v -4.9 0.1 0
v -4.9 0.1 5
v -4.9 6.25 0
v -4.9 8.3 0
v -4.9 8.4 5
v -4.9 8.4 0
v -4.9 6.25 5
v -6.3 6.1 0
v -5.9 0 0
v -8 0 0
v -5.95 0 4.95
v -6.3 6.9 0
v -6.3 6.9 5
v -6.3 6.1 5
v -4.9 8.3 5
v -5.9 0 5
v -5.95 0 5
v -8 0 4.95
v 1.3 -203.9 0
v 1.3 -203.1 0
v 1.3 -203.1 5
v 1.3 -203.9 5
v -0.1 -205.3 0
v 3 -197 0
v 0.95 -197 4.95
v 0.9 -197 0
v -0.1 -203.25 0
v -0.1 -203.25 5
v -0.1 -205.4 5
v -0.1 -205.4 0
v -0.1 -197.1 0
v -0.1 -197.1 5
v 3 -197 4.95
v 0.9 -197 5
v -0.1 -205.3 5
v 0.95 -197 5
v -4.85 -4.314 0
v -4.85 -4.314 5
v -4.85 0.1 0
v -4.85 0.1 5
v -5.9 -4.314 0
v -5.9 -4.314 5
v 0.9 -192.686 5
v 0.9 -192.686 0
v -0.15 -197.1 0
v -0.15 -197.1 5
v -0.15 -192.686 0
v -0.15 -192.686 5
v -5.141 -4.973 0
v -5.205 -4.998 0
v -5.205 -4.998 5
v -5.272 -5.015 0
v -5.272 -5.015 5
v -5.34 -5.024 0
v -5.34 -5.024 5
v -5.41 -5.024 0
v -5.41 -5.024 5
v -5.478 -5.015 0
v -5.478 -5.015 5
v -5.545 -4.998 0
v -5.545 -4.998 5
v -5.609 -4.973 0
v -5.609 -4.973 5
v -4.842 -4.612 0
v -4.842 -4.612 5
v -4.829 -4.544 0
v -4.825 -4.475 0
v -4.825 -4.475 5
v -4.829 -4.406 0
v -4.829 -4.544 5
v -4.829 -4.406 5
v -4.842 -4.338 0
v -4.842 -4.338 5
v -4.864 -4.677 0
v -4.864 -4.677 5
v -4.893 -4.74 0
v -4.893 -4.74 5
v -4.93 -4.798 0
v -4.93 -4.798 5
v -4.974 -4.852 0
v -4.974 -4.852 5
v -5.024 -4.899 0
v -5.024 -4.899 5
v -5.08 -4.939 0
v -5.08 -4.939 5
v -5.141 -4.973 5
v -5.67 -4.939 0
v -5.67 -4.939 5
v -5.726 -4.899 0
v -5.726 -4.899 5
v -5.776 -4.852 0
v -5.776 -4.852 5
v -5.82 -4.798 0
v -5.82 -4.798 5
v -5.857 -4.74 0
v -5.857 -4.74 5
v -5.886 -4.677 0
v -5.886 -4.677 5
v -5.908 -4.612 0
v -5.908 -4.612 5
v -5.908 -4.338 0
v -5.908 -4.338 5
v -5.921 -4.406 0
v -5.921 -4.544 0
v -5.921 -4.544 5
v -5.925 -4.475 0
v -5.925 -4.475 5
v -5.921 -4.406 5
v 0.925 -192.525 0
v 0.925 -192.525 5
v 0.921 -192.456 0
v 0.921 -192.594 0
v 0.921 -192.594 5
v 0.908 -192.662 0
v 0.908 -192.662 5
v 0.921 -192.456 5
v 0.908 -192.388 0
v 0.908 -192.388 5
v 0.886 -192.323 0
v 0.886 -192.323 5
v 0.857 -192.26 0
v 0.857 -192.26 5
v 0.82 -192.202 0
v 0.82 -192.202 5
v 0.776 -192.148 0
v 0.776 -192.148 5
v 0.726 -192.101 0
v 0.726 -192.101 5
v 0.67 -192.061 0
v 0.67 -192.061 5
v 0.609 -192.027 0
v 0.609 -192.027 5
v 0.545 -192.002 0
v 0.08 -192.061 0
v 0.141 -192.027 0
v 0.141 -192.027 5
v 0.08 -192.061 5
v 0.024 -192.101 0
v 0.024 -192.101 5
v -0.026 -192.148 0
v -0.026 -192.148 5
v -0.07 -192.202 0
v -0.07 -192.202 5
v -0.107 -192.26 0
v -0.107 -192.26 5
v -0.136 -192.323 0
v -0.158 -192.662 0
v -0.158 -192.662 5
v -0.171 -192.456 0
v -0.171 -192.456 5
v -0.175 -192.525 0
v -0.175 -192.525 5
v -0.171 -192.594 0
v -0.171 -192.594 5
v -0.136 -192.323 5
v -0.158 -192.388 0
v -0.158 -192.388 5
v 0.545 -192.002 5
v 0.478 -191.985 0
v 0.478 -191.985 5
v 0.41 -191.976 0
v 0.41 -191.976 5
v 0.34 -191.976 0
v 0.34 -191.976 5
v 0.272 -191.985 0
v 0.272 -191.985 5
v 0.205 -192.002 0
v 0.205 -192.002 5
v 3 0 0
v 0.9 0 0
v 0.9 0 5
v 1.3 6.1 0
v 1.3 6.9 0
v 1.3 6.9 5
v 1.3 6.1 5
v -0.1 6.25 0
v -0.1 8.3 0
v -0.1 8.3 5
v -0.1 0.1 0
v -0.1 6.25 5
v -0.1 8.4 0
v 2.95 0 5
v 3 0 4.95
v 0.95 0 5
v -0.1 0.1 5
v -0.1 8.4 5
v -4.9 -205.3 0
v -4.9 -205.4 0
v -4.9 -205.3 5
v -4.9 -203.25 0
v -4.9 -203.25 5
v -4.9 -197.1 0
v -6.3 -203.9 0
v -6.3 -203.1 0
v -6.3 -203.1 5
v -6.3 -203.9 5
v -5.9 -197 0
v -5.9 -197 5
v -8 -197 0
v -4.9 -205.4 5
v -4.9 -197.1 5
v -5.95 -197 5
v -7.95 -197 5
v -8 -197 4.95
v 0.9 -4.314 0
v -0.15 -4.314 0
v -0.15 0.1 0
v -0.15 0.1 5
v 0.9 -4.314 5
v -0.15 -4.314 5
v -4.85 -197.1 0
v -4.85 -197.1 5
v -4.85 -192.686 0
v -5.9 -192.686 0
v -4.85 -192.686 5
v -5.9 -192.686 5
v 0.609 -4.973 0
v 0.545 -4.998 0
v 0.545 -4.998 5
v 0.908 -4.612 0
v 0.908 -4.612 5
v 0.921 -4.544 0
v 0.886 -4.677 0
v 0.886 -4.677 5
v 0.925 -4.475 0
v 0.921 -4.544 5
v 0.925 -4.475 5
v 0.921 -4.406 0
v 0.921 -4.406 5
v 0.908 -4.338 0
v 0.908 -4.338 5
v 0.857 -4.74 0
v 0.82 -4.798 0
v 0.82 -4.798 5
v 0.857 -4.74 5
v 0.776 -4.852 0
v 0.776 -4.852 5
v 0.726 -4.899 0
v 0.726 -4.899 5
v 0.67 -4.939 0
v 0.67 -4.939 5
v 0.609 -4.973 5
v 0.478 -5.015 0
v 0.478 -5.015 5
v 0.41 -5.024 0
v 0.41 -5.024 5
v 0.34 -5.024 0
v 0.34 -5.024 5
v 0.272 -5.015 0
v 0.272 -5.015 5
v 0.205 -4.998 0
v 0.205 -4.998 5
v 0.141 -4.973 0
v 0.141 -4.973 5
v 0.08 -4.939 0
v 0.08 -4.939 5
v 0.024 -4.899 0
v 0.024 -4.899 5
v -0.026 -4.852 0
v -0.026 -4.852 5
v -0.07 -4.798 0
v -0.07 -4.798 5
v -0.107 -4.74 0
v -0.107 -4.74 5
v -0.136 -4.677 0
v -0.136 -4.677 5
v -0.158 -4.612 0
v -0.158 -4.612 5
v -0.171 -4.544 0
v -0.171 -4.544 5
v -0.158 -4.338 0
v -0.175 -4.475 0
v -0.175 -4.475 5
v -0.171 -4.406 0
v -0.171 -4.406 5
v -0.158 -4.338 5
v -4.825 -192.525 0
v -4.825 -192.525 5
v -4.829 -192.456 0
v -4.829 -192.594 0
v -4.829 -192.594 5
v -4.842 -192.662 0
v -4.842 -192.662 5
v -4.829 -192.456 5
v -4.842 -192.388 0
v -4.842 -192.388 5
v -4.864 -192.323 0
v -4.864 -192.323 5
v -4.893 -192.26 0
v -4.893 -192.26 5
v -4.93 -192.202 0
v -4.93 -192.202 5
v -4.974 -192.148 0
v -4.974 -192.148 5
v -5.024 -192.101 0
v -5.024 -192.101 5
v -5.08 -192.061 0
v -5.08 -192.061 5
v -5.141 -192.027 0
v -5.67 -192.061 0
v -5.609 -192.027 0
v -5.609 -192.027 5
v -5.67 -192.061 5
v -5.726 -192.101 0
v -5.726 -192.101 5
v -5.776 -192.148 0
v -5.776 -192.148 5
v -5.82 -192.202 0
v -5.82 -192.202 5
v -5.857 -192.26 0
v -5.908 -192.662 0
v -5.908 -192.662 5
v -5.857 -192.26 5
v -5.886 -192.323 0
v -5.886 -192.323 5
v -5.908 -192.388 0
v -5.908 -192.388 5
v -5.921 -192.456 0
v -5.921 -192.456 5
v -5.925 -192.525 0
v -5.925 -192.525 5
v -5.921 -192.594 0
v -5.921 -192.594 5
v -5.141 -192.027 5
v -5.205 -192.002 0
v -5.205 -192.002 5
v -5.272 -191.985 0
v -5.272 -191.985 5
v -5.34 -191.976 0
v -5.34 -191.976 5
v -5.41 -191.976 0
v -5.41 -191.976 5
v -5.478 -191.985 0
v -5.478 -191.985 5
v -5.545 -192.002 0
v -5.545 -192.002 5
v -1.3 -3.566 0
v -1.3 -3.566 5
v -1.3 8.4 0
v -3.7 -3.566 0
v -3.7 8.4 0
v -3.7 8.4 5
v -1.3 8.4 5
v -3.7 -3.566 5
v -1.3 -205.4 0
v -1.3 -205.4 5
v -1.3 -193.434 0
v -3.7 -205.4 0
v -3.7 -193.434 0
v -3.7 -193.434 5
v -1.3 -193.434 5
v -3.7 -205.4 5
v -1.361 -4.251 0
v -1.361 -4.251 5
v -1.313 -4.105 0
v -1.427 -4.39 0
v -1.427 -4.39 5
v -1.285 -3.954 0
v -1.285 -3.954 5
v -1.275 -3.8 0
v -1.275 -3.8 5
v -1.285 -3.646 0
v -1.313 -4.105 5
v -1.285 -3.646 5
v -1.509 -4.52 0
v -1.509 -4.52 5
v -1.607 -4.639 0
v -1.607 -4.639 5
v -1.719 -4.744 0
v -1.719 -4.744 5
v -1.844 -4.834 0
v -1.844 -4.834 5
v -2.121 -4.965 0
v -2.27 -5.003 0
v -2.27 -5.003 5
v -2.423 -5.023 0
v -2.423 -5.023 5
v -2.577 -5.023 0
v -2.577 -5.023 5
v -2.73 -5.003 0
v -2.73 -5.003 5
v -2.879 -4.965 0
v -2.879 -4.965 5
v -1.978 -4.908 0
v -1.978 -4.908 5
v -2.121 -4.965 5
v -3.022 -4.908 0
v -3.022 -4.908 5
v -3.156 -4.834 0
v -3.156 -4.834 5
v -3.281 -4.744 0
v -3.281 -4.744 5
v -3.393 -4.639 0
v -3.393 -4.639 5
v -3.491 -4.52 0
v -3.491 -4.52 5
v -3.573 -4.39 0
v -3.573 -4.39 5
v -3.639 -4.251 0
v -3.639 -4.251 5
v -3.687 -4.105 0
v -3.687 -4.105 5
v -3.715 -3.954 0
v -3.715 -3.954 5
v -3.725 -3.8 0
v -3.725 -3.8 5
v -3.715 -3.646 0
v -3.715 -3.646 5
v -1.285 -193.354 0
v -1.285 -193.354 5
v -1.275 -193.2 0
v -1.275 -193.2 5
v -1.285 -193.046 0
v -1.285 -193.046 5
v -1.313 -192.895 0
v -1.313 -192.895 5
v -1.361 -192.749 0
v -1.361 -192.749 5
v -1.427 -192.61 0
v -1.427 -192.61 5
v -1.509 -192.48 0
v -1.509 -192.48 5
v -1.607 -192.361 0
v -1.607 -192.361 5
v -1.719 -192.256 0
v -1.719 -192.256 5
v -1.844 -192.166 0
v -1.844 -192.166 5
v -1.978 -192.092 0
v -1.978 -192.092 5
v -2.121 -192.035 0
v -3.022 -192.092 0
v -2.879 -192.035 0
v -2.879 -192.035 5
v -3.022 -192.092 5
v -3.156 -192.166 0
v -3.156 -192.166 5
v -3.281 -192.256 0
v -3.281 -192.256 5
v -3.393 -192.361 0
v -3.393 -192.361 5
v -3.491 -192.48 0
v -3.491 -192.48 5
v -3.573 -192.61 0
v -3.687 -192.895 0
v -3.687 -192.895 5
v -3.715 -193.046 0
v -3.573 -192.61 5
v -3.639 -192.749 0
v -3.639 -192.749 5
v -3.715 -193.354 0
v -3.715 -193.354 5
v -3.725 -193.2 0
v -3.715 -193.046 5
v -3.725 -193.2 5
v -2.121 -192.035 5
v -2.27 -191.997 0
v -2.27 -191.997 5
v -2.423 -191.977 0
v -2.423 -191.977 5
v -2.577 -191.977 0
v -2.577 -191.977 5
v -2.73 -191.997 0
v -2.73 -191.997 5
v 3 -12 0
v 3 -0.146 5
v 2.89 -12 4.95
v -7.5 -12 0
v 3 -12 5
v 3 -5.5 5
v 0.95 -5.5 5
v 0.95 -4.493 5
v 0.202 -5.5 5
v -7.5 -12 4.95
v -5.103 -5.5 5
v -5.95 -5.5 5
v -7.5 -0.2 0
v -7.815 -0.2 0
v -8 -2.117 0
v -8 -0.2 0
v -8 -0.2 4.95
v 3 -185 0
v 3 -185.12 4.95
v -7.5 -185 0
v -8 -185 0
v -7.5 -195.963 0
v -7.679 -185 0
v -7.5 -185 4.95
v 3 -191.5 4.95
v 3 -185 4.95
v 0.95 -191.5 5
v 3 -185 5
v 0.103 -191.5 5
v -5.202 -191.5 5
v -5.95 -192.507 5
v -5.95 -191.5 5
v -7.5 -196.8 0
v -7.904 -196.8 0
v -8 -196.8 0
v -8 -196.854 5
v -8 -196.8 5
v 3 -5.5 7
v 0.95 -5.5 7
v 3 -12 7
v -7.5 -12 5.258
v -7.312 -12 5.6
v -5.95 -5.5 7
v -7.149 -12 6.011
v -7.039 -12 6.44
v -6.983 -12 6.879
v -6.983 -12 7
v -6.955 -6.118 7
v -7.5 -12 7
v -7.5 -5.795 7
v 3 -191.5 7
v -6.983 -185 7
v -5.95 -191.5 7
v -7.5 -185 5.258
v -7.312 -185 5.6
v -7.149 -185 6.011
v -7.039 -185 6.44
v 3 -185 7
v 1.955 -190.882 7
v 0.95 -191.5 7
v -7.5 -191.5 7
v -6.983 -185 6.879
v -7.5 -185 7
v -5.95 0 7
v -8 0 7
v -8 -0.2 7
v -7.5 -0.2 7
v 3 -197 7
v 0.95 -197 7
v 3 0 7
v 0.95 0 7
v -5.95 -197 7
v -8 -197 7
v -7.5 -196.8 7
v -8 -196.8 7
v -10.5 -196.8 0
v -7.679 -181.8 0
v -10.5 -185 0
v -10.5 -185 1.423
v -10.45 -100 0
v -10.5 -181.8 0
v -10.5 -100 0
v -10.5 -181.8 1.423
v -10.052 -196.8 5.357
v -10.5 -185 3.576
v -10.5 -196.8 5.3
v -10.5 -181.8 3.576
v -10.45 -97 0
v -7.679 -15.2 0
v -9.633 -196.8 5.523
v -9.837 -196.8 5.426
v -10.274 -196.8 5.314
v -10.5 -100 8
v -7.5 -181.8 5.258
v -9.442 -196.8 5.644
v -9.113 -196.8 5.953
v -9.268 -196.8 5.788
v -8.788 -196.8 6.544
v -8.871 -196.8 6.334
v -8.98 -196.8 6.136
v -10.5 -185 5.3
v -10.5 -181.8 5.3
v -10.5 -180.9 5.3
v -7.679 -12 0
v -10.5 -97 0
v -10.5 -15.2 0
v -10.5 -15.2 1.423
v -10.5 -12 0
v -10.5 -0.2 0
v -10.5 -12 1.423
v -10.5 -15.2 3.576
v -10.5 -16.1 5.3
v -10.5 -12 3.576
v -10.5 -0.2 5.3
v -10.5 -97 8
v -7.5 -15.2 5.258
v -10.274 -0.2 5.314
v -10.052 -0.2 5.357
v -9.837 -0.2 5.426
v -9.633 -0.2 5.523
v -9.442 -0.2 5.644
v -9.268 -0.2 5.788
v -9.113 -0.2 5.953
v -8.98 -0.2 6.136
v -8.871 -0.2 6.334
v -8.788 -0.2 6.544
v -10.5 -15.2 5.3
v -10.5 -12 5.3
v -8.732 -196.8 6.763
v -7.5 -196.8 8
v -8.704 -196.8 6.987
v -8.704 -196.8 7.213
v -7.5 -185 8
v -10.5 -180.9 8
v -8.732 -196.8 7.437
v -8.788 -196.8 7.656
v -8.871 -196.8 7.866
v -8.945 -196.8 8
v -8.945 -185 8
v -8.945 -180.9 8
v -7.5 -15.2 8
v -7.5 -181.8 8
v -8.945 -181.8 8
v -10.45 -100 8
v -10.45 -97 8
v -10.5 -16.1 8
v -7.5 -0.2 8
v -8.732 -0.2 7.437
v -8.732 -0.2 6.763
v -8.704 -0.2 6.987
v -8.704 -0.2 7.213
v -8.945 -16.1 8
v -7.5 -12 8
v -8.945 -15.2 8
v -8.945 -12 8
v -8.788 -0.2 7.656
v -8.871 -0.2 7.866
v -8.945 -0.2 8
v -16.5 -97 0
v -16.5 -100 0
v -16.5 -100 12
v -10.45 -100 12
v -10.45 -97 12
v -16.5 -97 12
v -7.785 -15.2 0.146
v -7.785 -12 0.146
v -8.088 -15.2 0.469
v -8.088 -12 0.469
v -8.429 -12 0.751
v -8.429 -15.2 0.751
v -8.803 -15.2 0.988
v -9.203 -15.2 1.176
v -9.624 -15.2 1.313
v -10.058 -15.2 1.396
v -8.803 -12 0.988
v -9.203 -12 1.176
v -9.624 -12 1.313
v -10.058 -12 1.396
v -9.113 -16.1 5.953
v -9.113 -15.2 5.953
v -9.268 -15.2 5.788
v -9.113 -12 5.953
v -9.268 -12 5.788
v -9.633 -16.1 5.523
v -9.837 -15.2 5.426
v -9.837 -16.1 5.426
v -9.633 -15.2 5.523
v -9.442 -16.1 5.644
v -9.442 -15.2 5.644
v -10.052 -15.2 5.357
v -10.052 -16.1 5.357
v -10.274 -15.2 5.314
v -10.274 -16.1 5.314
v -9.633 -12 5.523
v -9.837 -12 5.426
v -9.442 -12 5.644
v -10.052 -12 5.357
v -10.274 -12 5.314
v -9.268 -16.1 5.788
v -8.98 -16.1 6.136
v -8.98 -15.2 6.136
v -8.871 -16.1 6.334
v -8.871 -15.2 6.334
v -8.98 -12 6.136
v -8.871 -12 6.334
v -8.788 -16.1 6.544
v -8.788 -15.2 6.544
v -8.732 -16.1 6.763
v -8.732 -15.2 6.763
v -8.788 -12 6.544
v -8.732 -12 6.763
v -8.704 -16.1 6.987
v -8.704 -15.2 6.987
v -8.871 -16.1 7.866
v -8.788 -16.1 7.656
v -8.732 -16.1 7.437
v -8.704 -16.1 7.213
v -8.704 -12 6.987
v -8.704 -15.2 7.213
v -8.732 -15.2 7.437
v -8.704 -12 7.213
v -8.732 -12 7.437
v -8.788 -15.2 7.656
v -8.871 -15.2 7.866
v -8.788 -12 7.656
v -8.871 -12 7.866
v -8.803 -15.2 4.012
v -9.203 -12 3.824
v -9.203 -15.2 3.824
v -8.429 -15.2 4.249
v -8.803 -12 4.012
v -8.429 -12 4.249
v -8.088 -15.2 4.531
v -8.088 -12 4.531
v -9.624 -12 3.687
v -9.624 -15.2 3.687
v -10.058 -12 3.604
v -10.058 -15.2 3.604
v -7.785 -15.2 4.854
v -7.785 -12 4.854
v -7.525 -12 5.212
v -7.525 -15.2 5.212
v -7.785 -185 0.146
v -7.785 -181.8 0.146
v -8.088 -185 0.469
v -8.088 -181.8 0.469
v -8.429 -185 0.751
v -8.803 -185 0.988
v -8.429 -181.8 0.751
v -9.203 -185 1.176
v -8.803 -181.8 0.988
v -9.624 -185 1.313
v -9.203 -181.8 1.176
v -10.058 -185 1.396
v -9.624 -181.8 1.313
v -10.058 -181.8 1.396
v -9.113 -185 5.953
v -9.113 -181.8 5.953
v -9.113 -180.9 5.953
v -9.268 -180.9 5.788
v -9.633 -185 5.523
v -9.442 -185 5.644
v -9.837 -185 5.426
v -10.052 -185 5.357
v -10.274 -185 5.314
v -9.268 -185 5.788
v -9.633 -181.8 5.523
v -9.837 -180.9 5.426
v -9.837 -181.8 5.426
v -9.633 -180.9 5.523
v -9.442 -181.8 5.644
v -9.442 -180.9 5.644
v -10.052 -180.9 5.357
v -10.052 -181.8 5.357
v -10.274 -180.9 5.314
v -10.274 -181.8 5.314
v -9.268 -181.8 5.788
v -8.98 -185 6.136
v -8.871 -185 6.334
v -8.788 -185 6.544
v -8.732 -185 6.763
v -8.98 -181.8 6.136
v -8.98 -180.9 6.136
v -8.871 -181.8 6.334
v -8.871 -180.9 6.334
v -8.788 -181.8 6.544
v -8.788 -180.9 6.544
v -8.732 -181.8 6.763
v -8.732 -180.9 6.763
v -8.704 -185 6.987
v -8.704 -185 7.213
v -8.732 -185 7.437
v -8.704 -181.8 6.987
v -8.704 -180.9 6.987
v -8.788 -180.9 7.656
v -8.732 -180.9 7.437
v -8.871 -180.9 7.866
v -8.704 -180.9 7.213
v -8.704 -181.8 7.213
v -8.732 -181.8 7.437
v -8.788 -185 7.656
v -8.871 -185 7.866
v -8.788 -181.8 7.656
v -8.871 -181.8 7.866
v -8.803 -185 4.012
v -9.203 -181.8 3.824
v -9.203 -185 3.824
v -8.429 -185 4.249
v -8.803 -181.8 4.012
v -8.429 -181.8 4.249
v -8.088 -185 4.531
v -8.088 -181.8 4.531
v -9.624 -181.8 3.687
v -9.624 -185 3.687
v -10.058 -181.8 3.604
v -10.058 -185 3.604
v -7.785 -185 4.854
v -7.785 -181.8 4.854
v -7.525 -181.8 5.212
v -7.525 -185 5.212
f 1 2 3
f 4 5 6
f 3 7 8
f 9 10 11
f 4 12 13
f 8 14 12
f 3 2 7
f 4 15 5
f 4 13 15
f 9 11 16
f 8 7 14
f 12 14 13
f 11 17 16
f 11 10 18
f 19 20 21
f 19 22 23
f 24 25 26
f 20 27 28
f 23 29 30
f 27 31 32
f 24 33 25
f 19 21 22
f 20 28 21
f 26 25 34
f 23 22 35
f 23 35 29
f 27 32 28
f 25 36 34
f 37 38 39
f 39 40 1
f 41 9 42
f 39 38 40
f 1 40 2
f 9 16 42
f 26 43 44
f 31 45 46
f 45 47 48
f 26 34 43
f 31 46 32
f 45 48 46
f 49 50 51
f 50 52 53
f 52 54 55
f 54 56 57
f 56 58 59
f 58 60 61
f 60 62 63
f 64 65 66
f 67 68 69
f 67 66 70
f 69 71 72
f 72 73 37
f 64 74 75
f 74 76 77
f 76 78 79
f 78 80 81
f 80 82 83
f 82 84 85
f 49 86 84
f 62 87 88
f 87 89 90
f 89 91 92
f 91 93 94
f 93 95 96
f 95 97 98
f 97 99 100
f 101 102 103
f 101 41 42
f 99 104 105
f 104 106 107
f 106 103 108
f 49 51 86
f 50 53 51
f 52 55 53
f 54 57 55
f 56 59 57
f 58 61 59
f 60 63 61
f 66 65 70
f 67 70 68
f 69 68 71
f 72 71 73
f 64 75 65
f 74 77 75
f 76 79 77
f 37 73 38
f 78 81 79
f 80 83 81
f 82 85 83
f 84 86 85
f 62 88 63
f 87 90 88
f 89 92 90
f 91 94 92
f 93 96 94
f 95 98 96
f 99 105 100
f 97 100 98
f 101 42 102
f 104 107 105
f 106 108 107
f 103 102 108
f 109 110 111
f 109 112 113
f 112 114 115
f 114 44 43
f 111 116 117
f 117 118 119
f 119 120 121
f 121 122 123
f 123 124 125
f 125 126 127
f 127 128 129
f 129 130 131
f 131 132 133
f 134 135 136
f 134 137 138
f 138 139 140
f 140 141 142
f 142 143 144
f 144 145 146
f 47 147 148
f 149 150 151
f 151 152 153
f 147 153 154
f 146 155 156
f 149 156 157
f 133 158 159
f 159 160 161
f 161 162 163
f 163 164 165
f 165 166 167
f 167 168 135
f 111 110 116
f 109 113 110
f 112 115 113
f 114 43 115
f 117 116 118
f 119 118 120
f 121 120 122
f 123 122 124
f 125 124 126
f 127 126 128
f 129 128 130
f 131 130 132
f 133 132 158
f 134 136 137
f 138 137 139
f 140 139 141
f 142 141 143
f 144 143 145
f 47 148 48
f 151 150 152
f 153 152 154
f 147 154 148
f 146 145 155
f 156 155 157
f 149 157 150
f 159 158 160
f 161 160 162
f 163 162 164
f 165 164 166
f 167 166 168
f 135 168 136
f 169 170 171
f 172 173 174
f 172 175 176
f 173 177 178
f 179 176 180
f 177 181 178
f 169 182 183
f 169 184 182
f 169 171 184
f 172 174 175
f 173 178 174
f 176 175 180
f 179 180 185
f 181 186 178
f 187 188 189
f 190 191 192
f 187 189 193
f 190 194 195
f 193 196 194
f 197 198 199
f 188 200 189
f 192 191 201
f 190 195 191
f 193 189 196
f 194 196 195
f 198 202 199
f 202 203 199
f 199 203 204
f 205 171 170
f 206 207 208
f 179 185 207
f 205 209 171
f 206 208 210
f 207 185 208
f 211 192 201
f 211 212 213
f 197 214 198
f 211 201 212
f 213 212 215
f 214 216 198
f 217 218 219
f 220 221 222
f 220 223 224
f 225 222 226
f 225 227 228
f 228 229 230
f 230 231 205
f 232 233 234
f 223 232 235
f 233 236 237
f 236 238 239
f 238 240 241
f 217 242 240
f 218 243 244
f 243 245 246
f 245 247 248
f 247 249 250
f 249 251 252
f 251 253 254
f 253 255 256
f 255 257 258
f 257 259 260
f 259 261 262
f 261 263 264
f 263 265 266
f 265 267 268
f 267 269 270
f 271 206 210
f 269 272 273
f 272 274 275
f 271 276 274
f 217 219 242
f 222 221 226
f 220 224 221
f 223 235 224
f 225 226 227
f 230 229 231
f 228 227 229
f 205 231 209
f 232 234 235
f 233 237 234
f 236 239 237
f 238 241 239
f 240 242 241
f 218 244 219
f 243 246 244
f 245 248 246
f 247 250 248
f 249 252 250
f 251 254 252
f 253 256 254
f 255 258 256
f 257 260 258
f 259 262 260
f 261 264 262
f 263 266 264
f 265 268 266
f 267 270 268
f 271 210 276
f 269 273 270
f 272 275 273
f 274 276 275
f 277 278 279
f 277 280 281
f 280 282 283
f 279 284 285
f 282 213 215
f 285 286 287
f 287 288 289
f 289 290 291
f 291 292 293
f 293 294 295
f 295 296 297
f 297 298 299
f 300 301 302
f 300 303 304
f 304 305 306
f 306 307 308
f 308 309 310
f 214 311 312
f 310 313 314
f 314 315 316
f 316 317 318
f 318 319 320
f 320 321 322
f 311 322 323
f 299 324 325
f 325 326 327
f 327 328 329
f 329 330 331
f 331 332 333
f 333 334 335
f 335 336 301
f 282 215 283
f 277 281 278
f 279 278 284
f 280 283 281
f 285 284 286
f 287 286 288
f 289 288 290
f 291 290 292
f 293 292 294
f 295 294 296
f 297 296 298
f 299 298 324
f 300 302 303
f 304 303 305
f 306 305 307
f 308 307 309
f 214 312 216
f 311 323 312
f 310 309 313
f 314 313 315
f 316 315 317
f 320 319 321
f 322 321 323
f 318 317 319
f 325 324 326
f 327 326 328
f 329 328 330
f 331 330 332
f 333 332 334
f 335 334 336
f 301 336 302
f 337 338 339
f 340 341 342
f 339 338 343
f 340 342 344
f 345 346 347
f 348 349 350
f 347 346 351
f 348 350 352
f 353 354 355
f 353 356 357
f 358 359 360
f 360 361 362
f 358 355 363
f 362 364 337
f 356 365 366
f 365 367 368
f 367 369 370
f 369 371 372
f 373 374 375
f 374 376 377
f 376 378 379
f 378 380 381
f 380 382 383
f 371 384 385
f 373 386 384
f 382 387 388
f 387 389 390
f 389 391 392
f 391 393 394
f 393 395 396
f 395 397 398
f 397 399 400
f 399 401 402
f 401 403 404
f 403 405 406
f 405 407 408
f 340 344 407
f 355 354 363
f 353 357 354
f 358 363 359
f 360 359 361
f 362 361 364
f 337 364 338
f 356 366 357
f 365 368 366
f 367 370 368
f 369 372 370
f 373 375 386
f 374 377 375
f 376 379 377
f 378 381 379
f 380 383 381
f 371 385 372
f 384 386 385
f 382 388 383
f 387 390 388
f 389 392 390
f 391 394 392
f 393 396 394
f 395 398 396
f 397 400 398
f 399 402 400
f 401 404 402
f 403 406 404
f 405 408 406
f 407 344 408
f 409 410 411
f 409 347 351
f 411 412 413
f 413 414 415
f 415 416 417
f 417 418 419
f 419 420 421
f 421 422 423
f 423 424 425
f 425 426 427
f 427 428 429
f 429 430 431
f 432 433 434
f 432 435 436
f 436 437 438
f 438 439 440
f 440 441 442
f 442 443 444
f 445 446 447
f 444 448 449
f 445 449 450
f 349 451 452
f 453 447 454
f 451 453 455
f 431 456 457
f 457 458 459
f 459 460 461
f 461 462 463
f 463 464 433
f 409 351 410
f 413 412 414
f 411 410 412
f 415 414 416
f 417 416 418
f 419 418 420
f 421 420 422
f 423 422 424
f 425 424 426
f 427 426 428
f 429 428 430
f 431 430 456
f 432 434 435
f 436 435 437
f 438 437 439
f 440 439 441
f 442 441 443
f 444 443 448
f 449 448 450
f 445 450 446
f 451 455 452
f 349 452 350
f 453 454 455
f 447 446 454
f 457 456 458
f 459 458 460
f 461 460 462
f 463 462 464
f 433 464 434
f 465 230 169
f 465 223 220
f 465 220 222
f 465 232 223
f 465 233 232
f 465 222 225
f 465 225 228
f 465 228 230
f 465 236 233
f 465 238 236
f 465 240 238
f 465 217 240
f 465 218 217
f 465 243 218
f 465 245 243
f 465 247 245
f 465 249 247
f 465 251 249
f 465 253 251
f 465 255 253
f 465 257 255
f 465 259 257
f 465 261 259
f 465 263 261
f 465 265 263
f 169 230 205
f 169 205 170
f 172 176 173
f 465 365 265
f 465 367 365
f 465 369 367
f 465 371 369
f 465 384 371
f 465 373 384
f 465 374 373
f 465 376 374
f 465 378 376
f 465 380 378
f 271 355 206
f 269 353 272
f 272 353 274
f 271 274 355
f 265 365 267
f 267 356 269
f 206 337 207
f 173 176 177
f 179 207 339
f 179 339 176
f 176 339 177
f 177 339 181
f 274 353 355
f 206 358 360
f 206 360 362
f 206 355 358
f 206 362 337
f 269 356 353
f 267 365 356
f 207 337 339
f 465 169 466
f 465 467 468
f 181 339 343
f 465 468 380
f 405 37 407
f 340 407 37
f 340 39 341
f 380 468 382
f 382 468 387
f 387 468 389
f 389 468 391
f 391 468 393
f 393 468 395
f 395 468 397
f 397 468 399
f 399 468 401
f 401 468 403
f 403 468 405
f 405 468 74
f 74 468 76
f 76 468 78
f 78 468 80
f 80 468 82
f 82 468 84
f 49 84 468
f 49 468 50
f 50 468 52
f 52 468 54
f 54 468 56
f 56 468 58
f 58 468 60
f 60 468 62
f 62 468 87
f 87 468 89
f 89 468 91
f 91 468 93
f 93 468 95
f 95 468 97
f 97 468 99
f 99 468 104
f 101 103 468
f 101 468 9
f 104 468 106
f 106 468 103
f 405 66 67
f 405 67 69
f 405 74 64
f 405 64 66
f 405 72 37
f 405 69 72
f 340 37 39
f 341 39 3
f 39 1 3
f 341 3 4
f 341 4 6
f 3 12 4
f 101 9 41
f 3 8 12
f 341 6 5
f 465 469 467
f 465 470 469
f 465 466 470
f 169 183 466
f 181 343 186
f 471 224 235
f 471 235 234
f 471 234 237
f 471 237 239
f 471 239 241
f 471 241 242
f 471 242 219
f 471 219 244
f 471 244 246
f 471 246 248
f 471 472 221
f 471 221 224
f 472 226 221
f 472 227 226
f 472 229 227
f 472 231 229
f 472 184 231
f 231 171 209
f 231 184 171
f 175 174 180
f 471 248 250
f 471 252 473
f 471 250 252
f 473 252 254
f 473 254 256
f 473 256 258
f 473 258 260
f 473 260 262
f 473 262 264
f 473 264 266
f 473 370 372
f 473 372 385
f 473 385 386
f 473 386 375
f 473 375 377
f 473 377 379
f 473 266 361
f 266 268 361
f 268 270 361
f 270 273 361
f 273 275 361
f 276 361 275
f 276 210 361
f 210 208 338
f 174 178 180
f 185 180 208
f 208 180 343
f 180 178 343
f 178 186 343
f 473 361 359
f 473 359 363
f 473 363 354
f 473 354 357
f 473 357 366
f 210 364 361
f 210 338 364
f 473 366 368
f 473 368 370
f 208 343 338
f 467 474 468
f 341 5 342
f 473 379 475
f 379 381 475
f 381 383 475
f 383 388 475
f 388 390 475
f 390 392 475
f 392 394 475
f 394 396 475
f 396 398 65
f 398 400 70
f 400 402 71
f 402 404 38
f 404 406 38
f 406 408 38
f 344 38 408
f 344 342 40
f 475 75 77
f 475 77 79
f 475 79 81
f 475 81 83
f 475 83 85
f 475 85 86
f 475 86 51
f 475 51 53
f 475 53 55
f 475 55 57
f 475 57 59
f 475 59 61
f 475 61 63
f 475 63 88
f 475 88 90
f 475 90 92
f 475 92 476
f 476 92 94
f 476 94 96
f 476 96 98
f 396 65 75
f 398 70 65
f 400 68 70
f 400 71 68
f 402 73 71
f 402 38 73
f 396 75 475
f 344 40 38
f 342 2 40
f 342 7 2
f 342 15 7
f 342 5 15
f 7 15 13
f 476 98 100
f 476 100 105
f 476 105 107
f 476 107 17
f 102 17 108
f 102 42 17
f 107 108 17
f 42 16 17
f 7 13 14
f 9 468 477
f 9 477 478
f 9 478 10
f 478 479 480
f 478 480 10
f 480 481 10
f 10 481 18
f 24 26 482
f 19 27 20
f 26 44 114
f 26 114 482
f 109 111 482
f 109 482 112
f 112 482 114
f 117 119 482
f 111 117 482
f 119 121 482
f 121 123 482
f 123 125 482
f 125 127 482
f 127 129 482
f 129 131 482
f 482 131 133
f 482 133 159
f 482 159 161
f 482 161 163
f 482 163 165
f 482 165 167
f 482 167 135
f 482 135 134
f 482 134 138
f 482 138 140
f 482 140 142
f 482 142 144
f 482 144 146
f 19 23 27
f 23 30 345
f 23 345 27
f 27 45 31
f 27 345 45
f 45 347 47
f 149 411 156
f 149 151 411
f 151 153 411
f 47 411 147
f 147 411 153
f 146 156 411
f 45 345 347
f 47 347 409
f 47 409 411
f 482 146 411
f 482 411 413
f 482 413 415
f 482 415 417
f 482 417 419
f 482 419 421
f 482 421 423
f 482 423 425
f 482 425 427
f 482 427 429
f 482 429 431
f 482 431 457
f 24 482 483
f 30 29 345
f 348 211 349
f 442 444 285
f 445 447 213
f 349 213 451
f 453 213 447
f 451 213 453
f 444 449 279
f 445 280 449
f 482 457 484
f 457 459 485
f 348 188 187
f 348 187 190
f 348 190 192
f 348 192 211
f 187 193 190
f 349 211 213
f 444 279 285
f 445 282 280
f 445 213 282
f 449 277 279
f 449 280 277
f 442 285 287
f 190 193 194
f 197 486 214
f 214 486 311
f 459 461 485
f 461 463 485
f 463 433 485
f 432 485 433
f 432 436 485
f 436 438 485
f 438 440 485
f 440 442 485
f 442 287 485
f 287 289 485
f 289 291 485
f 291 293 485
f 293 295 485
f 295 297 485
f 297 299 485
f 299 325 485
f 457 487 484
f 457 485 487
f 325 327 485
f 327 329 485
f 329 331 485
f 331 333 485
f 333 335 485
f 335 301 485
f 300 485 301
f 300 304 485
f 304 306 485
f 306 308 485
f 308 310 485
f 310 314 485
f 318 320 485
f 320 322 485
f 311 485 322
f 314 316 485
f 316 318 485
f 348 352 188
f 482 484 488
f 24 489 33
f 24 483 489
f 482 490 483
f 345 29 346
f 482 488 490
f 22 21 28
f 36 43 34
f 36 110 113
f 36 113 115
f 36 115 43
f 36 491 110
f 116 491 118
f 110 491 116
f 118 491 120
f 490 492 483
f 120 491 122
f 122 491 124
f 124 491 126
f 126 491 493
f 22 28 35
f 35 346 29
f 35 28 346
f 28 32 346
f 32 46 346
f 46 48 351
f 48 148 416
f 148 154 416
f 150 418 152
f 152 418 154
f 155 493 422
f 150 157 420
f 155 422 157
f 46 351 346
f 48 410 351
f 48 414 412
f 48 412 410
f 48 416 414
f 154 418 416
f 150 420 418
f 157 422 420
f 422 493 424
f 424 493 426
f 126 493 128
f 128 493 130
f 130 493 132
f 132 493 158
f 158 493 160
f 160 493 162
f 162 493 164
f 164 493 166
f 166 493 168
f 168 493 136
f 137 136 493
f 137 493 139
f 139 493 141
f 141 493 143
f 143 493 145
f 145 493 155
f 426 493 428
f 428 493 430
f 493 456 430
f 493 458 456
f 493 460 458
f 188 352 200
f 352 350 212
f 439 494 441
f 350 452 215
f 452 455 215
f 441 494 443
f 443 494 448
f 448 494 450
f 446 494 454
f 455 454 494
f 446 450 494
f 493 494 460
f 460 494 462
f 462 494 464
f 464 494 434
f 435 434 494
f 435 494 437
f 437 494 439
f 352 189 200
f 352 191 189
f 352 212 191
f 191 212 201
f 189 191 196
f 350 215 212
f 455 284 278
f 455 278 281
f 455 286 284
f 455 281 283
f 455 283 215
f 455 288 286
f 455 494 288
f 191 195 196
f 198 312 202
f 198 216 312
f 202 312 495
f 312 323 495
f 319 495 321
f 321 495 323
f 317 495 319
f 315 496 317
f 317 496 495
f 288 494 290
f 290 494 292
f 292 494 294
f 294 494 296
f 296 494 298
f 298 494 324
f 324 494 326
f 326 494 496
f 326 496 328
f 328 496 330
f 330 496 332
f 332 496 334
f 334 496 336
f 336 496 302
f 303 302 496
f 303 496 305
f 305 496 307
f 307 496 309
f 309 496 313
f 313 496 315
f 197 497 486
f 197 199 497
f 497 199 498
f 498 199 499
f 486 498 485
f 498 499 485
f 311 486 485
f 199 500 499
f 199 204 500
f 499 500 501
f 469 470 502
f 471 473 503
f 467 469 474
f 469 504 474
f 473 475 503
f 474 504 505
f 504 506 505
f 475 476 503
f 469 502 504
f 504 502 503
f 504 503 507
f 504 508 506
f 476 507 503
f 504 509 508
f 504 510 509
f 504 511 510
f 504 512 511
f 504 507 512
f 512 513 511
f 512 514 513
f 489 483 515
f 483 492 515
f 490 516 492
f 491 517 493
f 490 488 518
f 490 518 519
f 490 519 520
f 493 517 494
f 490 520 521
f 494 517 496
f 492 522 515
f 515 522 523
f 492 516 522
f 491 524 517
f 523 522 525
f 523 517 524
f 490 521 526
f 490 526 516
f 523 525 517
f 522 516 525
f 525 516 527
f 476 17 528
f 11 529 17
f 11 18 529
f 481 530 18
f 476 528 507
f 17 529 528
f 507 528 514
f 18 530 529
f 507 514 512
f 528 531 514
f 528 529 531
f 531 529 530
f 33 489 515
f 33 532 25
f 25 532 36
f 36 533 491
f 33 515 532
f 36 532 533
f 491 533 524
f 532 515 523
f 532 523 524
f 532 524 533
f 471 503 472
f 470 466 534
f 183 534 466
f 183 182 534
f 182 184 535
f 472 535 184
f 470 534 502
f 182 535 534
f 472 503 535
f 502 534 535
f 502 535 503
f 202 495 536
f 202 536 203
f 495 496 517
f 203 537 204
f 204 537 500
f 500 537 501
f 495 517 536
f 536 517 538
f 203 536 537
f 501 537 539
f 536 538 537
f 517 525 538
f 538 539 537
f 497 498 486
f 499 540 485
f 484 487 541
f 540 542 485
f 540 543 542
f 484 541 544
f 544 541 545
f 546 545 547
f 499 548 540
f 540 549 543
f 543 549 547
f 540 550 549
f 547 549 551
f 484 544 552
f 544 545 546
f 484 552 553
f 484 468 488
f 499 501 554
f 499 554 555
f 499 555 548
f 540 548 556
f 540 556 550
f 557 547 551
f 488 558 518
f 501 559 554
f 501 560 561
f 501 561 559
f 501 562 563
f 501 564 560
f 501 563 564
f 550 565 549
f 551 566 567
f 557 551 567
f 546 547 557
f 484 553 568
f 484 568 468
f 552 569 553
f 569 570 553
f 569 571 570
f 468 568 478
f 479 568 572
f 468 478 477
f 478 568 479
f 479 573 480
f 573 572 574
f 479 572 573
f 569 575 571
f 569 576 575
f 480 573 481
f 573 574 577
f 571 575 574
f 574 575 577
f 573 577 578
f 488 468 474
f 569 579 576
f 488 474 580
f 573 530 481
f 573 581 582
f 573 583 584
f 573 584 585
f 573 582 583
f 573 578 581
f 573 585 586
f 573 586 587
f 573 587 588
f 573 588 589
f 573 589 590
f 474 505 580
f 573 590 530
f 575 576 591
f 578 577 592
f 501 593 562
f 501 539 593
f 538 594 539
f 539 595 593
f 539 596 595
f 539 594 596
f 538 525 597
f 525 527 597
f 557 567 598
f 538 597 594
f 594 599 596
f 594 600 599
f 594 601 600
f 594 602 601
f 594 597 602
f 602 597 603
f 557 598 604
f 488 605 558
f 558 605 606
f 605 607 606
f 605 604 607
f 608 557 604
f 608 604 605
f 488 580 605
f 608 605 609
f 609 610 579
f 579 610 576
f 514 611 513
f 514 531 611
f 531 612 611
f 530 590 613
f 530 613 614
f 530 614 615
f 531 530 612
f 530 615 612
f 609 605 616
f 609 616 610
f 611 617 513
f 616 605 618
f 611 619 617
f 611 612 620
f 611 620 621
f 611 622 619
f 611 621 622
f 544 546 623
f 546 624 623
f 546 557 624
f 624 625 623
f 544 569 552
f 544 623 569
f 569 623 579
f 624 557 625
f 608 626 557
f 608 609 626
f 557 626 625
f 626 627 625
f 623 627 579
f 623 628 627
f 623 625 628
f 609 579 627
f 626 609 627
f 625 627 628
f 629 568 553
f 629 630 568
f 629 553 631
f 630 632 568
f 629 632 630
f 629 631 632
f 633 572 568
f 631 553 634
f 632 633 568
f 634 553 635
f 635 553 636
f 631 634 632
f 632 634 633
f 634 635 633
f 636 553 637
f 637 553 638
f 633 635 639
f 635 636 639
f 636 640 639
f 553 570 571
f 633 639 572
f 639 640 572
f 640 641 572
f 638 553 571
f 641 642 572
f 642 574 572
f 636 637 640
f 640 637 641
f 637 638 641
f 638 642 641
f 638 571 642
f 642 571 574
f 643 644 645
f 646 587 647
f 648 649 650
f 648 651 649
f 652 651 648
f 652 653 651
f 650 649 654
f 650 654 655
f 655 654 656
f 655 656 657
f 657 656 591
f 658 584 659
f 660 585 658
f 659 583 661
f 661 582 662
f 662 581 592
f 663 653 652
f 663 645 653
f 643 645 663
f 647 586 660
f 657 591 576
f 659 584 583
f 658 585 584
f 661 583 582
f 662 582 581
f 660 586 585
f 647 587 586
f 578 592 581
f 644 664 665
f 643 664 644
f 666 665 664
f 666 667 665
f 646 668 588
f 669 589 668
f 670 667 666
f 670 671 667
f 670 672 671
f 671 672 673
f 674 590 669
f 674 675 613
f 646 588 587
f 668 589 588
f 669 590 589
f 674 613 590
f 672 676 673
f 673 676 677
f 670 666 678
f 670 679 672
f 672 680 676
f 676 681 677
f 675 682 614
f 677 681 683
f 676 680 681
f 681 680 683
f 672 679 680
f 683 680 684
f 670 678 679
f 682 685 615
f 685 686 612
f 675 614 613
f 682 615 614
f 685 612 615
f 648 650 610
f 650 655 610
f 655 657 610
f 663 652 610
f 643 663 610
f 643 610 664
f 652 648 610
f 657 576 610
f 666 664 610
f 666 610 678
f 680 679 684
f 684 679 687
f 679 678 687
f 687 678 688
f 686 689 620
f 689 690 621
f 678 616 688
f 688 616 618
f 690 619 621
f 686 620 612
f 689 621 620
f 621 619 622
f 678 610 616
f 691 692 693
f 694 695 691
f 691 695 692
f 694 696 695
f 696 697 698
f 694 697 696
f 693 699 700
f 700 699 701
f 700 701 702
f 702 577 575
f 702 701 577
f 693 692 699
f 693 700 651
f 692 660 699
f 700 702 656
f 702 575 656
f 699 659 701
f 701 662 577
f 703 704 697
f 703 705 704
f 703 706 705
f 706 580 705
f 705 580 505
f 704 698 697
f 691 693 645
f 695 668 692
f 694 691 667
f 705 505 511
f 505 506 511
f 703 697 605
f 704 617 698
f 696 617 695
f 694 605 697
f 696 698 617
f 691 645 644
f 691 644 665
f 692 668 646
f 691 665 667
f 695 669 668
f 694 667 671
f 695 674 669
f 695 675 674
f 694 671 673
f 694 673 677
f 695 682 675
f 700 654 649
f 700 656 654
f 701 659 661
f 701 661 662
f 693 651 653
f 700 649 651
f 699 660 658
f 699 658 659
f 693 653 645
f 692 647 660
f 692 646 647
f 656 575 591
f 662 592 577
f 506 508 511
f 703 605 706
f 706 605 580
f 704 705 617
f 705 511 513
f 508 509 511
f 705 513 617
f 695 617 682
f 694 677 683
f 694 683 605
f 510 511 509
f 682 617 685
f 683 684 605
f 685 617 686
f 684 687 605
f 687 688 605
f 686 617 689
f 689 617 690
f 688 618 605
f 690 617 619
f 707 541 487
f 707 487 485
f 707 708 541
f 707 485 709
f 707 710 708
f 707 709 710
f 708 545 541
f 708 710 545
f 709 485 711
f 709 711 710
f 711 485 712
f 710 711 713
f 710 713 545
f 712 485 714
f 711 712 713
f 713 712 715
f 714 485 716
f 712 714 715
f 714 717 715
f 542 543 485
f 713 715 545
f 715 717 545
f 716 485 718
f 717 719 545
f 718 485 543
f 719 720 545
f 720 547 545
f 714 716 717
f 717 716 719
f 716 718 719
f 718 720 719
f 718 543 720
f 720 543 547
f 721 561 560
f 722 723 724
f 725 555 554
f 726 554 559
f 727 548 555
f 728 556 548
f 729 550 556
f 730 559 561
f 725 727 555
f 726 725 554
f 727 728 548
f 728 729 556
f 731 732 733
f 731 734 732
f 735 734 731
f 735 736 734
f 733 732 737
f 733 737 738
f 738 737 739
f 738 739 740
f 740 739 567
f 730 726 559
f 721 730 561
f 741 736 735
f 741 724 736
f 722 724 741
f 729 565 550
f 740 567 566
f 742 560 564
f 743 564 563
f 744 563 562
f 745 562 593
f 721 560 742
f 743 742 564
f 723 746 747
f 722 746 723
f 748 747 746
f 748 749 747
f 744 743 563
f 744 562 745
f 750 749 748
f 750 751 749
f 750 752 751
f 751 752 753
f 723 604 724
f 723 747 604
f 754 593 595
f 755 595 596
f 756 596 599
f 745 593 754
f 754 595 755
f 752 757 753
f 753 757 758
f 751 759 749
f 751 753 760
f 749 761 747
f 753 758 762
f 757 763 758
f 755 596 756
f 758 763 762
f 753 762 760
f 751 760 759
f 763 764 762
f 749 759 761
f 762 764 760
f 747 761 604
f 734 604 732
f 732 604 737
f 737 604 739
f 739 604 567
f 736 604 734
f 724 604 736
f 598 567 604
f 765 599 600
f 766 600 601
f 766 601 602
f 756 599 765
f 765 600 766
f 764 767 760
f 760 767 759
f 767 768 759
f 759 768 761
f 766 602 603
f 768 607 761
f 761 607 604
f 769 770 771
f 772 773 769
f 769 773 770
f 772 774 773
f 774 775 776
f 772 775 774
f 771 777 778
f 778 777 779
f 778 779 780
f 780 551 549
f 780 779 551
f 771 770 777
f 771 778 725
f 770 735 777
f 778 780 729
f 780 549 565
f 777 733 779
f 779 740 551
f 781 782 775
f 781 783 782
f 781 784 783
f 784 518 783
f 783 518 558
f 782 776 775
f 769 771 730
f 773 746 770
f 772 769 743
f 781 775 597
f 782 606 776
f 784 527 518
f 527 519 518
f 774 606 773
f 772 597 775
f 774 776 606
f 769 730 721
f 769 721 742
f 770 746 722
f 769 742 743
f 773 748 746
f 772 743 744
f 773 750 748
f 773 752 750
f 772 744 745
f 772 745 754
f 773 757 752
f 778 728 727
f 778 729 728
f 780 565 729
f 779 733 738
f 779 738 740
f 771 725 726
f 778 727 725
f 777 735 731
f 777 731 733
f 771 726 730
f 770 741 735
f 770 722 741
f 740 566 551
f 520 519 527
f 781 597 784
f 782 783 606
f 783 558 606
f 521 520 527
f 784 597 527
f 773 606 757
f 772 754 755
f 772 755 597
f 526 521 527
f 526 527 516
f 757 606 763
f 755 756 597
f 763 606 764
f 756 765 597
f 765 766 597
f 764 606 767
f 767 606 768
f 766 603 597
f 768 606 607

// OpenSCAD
$fn = 50;

difference() {
	union() {
		translate(v = [0, 0, 0]) {
			rotate(a = [0, 0, 0]) {
				difference() {
					union() {
						translate(v = [0, 0, 2.5]) {
							rotate(a = [0, -90, 0]) {
								difference() {
									union() {
										translate(v = [0, 0, 0]) {
											rotate(a = [0, 0, 0]) {
												difference() {
													union() {
														translate(v = [-2.5, 0, 2.5]) {
															rotate(a = [0, 90.0, 0]) {
																difference() {
																	union() {
																		translate(v = [0, 0, 0]) {
																			rotate(a = [0, 0, 0]) {
																				difference() {
																					union() {
																						translate(v = [0, 0, 0]) {
																							rotate(a = [0, 0, 0]) {
																								difference() {
																									union() {
																										translate(v = [-5.5, -12.0, 0]) {
																											cube(size = [11.0, 20.4, 5.0]);
																										}
																									}
																									union() {
																										translate(v = [0, 0, -0.1]) {
																											linear_extrude(height = 5.2) {
																												polygon(points = [[-2.4, 0], [-2.4, 6.25], [-3.8, 6.1], [-3.8, 6.8999999999999995], [-2.4, 8.299999999999999], [-2.4, 9.399999999999999], [-5.7, 9.399999999999999], [-5.7, 0]]);
																											}
																										}
																										translate(v = [0, 0, -0.1]) {
																											linear_extrude(height = 5.2) {
																												polygon(points = [[-2.35, -4.5], [-2.35, -4.3875], [-2.35, -4.275], [-2.35, -4.1625], [-2.35, -4.05], [-2.35, -3.9375], [-2.35, -3.825], [-2.35, -3.7125], [-2.35, -3.6], [-2.35, -3.4875], [-2.35, -3.375], [-2.35, -3.2625], [-2.35, -3.15], [-2.35, -3.0375], [-2.35, -2.925], [-2.35, -2.8125], [-2.35, -2.7], [-2.35, -2.5875], [-2.35, -2.475], [-2.35, -2.3625], [-2.35, -2.25], [-2.35, -2.1375], [-2.35, -2.025], [-2.35, -1.9125], [-2.35, -1.7999999999999998], [-2.35, -1.6875], [-2.35, -1.5750000000000002], [-2.35, -1.4625], [-2.35, -1.35], [-2.35, -1.2374999999999998], [-2.35, -1.125], [-2.35, -1.0125000000000002], [-2.35, -0.8999999999999999], [-2.35, -0.7875000000000001], [-2.35, -0.6749999999999998], [-2.35, -0.5625], [-2.35, -0.4500000000000002], [-2.35, -0.33750000000000036], [-2.35, -0.22499999999999964], [-2.35, -0.11249999999999982], [-2.35, 0.0], [-2.35, 0.1], [-3.4, 0.1], [-3.4, -4.5]]);
																											}
																										}
																										translate(v = [-2.875, -4.475, -0.1]) {
																											cylinder(h = 5.2, r = 0.55);
																										}
																										translate(v = [0, 0, -0.1]) {
																											linear_extrude(height = 5.2) {
																												polygon(points = [[2.4, 0], [2.4, 6.25], [3.8, 6.1], [3.8, 6.8999999999999995], [2.4, 8.299999999999999], [2.4, 9.399999999999999], [5.7, 9.399999999999999], [5.7, 0]]);
																											}
																										}
																										translate(v = [0, 0, -0.1]) {
																											linear_extrude(height = 5.2) {
																												polygon(points = [[2.35, -4.5], [2.35, -4.3875], [2.35, -4.275], [2.35, -4.1625], [2.35, -4.05], [2.35, -3.9375], [2.35, -3.825], [2.35, -3.7125], [2.35, -3.6], [2.35, -3.4875], [2.35, -3.375], [2.35, -3.2625], [2.35, -3.15], [2.35, -3.0375], [2.35, -2.925], [2.35, -2.8125], [2.35, -2.7], [2.35, -2.5875], [2.35, -2.475], [2.35, -2.3625], [2.35, -2.25], [2.35, -2.1375], [2.35, -2.025], [2.35, -1.9125], [2.35, -1.7999999999999998], [2.35, -1.6875], [2.35, -1.5750000000000002], [2.35, -1.4625], [2.35, -1.35], [2.35, -1.2374999999999998], [2.35, -1.125], [2.35, -1.0125000000000002], [2.35, -0.8999999999999999], [2.35, -0.7875000000000001], [2.35, -0.6749999999999998], [2.35, -0.5625], [2.35, -0.4500000000000002], [2.35, -0.33750000000000036], [2.35, -0.22499999999999964], [2.35, -0.11249999999999982], [2.35, 0.0], [2.35, 0.1], [3.4, 0.1], [3.4, -4.5]]);
																											}
																										}
																										translate(v = [2.875, -4.475, -0.1]) {
																											cylinder(h = 5.2, r = 0.55);
																										}
																										translate(v = [0, 0, -0.1]) {
																											linear_extrude(height = 5.2) {
																												polygon(points = [[-1.2, -3.8499999999999996], [-1.2, -3.6607142857142856], [-1.2, -3.471428571428571], [-1.2, -3.2821428571428566], [-1.2, -3.0928571428571425], [-1.2, -2.9035714285714285], [-1.2, -2.714285714285714], [-1.2, -2.5249999999999995], [-1.2, -2.3357142857142854], [-1.2, -2.1464285714285714], [-1.2, -1.9571428571428569], [-1.2, -1.7678571428571423], [-1.2, -1.5785714285714283], [-1.2, -1.3892857142857138], [-1.2, -1.1999999999999997], [-1.2, -1.0107142857142852], [-1.2, -0.8214285714285712], [-1.2, -0.6321428571428567], [-1.2, -0.4428571428571426], [-1.2, -0.2535714285714281], [-1.2, -0.06428571428571406], [-1.2, 0], [-1.2, 0.12500000000000044], [-1.2, 0.31428571428571495], [-1.2, 0.503571428571429], [-1.2, 0.6928571428571431], [-1.2, 0.8821428571428571], [-1.2, 1.071428571428572], [-1.2, 1.2607142857142861], [-1.2, 1.4500000000000002], [-1.2, 1.6392857142857142], [-1.2, 1.8285714285714292], [-1.2, 2.0178571428571432], [-1.2, 2.2071428571428573], [-1.2, 2.3964285714285714], [-1.2, 2.5857142857142863], [-1.2, 2.7750000000000004], [-1.2, 2.9642857142857144], [-1.2, 3.1535714285714294], [-1.2, 3.3428571428571434], [-1.2, 3.5321428571428575], [-1.2, 3.7214285714285715], [-1.2, 3.9107142857142865], [-1.2, 4.1000000000000005], [-1.2, 4.289285714285715], [-1.2, 4.4785714285714295], [-1.2, 4.667857142857143], [-1.2, 4.857142857142858], [-1.2, 5.046428571428573], [-1.2, 5.235714285714286], [-1.2, 5.425000000000001], [-1.2, 5.614285714285714], [-1.2, 5.803571428571429], [-1.2, 5.992857142857144], [-1.2, 6.1], [-1.2, 6.182142857142857], [-1.2, 6.25], [-1.2, 6.371428571428572], [-1.2, 6.560714285714287], [-1.2, 6.75], [-1.2, 6.939285714285715], [-1.2, 7.128571428571428], [-1.2, 7.317857142857143], [-1.2, 7.507142857142858], [-1.2, 7.696428571428571], [-1.2, 7.885714285714286], [-1.2, 8.075000000000001], [-1.2, 8.264285714285714], [-1.2, 8.45357142857143], [-1.2, 8.642857142857142], [-1.2, 8.832142857142857], [-1.2, 9.021428571428572], [-1.2, 9.210714285714285], [-1.2, 9.4], [1.2, 9.4], [1.2, 9.210714285714285], [1.2, 9.021428571428572], [1.2, 8.832142857142857], [1.2, 8.642857142857142], [1.2, 8.45357142857143], [1.2, 8.264285714285714], [1.2, 8.075000000000001], [1.2, 7.885714285714286], [1.2, 7.696428571428571], [1.2, 7.507142857142858], [1.2, 7.317857142857143], [1.2, 7.128571428571428], [1.2, 6.939285714285715], [1.2, 6.75], [1.2, 6.560714285714287], [1.2, 6.371428571428572], [1.2, 6.25], [1.2, 6.182142857142857], [1.2, 6.1], [1.2, 5.992857142857144], [1.2, 5.803571428571429], [1.2, 5.614285714285714], [1.2, 5.425000000000001], [1.2, 5.235714285714286], [1.2, 5.046428571428573], [1.2, 4.857142857142858], [1.2, 4.667857142857143], [1.2, 4.4785714285714295], [1.2, 4.289285714285715], [1.2, 4.1000000000000005], [1.2, 3.9107142857142865], [1.2, 3.7214285714285715], [1.2, 3.5321428571428575], [1.2, 3.3428571428571434], [1.2, 3.1535714285714294], [1.2, 2.9642857142857144], [1.2, 2.7750000000000004], [1.2, 2.5857142857142863], [1.2, 2.3964285714285714], [1.2, 2.2071428571428573], [1.2, 2.0178571428571432], [1.2, 1.8285714285714292], [1.2, 1.6392857142857142], [1.2, 1.4500000000000002], [1.2, 1.2607142857142861], [1.2, 1.071428571428572], [1.2, 0.8821428571428571], [1.2, 0.6928571428571431], [1.2, 0.503571428571429], [1.2, 0.31428571428571495], [1.2, 0.12500000000000044], [1.2, 0], [1.2, -0.06428571428571406], [1.2, -0.2535714285714281], [1.2, -0.4428571428571426], [1.2, -0.6321428571428567], [1.2, -0.8214285714285712], [1.2, -1.0107142857142852], [1.2, -1.1999999999999997], [1.2, -1.3892857142857138], [1.2, -1.5785714285714283], [1.2, -1.7678571428571423], [1.2, -1.9571428571428569], [1.2, -2.1464285714285714], [1.2, -2.3357142857142854], [1.2, -2.5249999999999995], [1.2, -2.714285714285714], [1.2, -2.9035714285714285], [1.2, -3.0928571428571425], [1.2, -3.2821428571428566], [1.2, -3.471428571428571], [1.2, -3.6607142857142856], [1.2, -3.8499999999999996]]);
																											}
																										}
																										translate(v = [0, -3.8, -0.1]) {
																											cylinder(h = 5.2, r = 1.2249999999999999);
																										}
																									}
																								}
																							}
																						}
																						translate(v = [0, 0, 0]) {
																							rotate(a = [0, 0, 0]) {
																								difference() {
																									union() {
																										translate(v = [-5.5, -12.0, 4.95]) {
																											cube(size = [11.0, 6.5, 2.05]);
																										}
																									}
																									union();
																								}
																							}
																						}
																						translate(v = [-5.5, -12.0, 4.95]) {
																							cube(size = [2.0500000000000003, 12.0, 2.05]);
																						}
																						translate(v = [3.4499999999999997, -12.0, 4.95]) {
																							cube(size = [2.0500000000000003, 12.0, 2.05]);
																						}
																					}
																					union();
																				}
																			}
																		}
																	}
																	union();
																}
															}
														}
													}
													union();
												}
											}
										}
										translate(v = [-2.5, -197.0, 2.5]) {
											rotate(a = [180, -90, 0]) {
												difference() {
													union() {
														translate(v = [0, 0, 0]) {
															rotate(a = [0, 0, 0]) {
																difference() {
																	union() {
																		translate(v = [0, 0, 0]) {
																			rotate(a = [0, 0, 0]) {
																				difference() {
																					union() {
																						translate(v = [-5.5, -12.0, 0]) {
																							cube(size = [11.0, 20.4, 5.0]);
																						}
																					}
																					union() {
																						translate(v = [0, 0, -0.1]) {
																							linear_extrude(height = 5.2) {
																								polygon(points = [[-2.4, 0], [-2.4, 6.25], [-3.8, 6.1], [-3.8, 6.8999999999999995], [-2.4, 8.299999999999999], [-2.4, 9.399999999999999], [-5.7, 9.399999999999999], [-5.7, 0]]);
																							}
																						}
																						translate(v = [0, 0, -0.1]) {
																							linear_extrude(height = 5.2) {
																								polygon(points = [[-2.35, -4.5], [-2.35, -4.3875], [-2.35, -4.275], [-2.35, -4.1625], [-2.35, -4.05], [-2.35, -3.9375], [-2.35, -3.825], [-2.35, -3.7125], [-2.35, -3.6], [-2.35, -3.4875], [-2.35, -3.375], [-2.35, -3.2625], [-2.35, -3.15], [-2.35, -3.0375], [-2.35, -2.925], [-2.35, -2.8125], [-2.35, -2.7], [-2.35, -2.5875], [-2.35, -2.475], [-2.35, -2.3625], [-2.35, -2.25], [-2.35, -2.1375], [-2.35, -2.025], [-2.35, -1.9125], [-2.35, -1.7999999999999998], [-2.35, -1.6875], [-2.35, -1.5750000000000002], [-2.35, -1.4625], [-2.35, -1.35], [-2.35, -1.2374999999999998], [-2.35, -1.125], [-2.35, -1.0125000000000002], [-2.35, -0.8999999999999999], [-2.35, -0.7875000000000001], [-2.35, -0.6749999999999998], [-2.35, -0.5625], [-2.35, -0.4500000000000002], [-2.35, -0.33750000000000036], [-2.35, -0.22499999999999964], [-2.35, -0.11249999999999982], [-2.35, 0.0], [-2.35, 0.1], [-3.4, 0.1], [-3.4, -4.5]]);
																							}
																						}
																						translate(v = [-2.875, -4.475, -0.1]) {
																							cylinder(h = 5.2, r = 0.55);
																						}
																						translate(v = [0, 0, -0.1]) {
																							linear_extrude(height = 5.2) {
																								polygon(points = [[2.4, 0], [2.4, 6.25], [3.8, 6.1], [3.8, 6.8999999999999995], [2.4, 8.299999999999999], [2.4, 9.399999999999999], [5.7, 9.399999999999999], [5.7, 0]]);
																							}
																						}
																						translate(v = [0, 0, -0.1]) {
																							linear_extrude(height = 5.2) {
																								polygon(points = [[2.35, -4.5], [2.35, -4.3875], [2.35, -4.275], [2.35, -4.1625], [2.35, -4.05], [2.35, -3.9375], [2.35, -3.825], [2.35, -3.7125], [2.35, -3.6], [2.35, -3.4875], [2.35, -3.375], [2.35, -3.2625], [2.35, -3.15], [2.35, -3.0375], [2.35, -2.925], [2.35, -2.8125], [2.35, -2.7], [2.35, -2.5875], [2.35, -2.475], [2.35, -2.3625], [2.35, -2.25], [2.35, -2.1375], [2.35, -2.025], [2.35, -1.9125], [2.35, -1.7999999999999998], [2.35, -1.6875], [2.35, -1.5750000000000002], [2.35, -1.4625], [2.35, -1.35], [2.35, -1.2374999999999998], [2.35, -1.125], [2.35, -1.0125000000000002], [2.35, -0.8999999999999999], [2.35, -0.7875000000000001], [2.35, -0.6749999999999998], [2.35, -0.5625], [2.35, -0.4500000000000002], [2.35, -0.33750000000000036], [2.35, -0.22499999999999964], [2.35, -0.11249999999999982], [2.35, 0.0], [2.35, 0.1], [3.4, 0.1], [3.4, -4.5]]);
																							}
																						}
																						translate(v = [2.875, -4.475, -0.1]) {
																							cylinder(h = 5.2, r = 0.55);
																						}
																						translate(v = [0, 0, -0.1]) {
																							linear_extrude(height = 5.2) {
																								polygon(points = [[-1.2, -3.8499999999999996], [-1.2, -3.6607142857142856], [-1.2, -3.471428571428571], [-1.2, -3.2821428571428566], [-1.2, -3.0928571428571425], [-1.2, -2.9035714285714285], [-1.2, -2.714285714285714], [-1.2, -2.5249999999999995], [-1.2, -2.3357142857142854], [-1.2, -2.1464285714285714], [-1.2, -1.9571428571428569], [-1.2, -1.7678571428571423], [-1.2, -1.5785714285714283], [-1.2, -1.3892857142857138], [-1.2, -1.1999999999999997], [-1.2, -1.0107142857142852], [-1.2, -0.8214285714285712], [-1.2, -0.6321428571428567], [-1.2, -0.4428571428571426], [-1.2, -0.2535714285714281], [-1.2, -0.06428571428571406], [-1.2, 0], [-1.2, 0.12500000000000044], [-1.2, 0.31428571428571495], [-1.2, 0.503571428571429], [-1.2, 0.6928571428571431], [-1.2, 0.8821428571428571], [-1.2, 1.071428571428572], [-1.2, 1.2607142857142861], [-1.2, 1.4500000000000002], [-1.2, 1.6392857142857142], [-1.2, 1.8285714285714292], [-1.2, 2.0178571428571432], [-1.2, 2.2071428571428573], [-1.2, 2.3964285714285714], [-1.2, 2.5857142857142863], [-1.2, 2.7750000000000004], [-1.2, 2.9642857142857144], [-1.2, 3.1535714285714294], [-1.2, 3.3428571428571434], [-1.2, 3.5321428571428575], [-1.2, 3.7214285714285715], [-1.2, 3.9107142857142865], [-1.2, 4.1000000000000005], [-1.2, 4.289285714285715], [-1.2, 4.4785714285714295], [-1.2, 4.667857142857143], [-1.2, 4.857142857142858], [-1.2, 5.046428571428573], [-1.2, 5.235714285714286], [-1.2, 5.425000000000001], [-1.2, 5.614285714285714], [-1.2, 5.803571428571429], [-1.2, 5.992857142857144], [-1.2, 6.1], [-1.2, 6.182142857142857], [-1.2, 6.25], [-1.2, 6.371428571428572], [-1.2, 6.560714285714287], [-1.2, 6.75], [-1.2, 6.939285714285715], [-1.2, 7.128571428571428], [-1.2, 7.317857142857143], [-1.2, 7.507142857142858], [-1.2, 7.696428571428571], [-1.2, 7.885714285714286], [-1.2, 8.075000000000001], [-1.2, 8.264285714285714], [-1.2, 8.45357142857143], [-1.2, 8.642857142857142], [-1.2, 8.832142857142857], [-1.2, 9.021428571428572], [-1.2, 9.210714285714285], [-1.2, 9.4], [1.2, 9.4], [1.2, 9.210714285714285], [1.2, 9.021428571428572], [1.2, 8.832142857142857], [1.2, 8.642857142857142], [1.2, 8.45357142857143], [1.2, 8.264285714285714], [1.2, 8.075000000000001], [1.2, 7.885714285714286], [1.2, 7.696428571428571], [1.2, 7.507142857142858], [1.2, 7.317857142857143], [1.2, 7.128571428571428], [1.2, 6.939285714285715], [1.2, 6.75], [1.2, 6.560714285714287], [1.2, 6.371428571428572], [1.2, 6.25], [1.2, 6.182142857142857], [1.2, 6.1], [1.2, 5.992857142857144], [1.2, 5.803571428571429], [1.2, 5.614285714285714], [1.2, 5.425000000000001], [1.2, 5.235714285714286], [1.2, 5.046428571428573], [1.2, 4.857142857142858], [1.2, 4.667857142857143], [1.2, 4.4785714285714295], [1.2, 4.289285714285715], [1.2, 4.1000000000000005], [1.2, 3.9107142857142865], [1.2, 3.7214285714285715], [1.2, 3.5321428571428575], [1.2, 3.3428571428571434], [1.2, 3.1535714285714294], [1.2, 2.9642857142857144], [1.2, 2.7750000000000004], [1.2, 2.5857142857142863], [1.2, 2.3964285714285714], [1.2, 2.2071428571428573], [1.2, 2.0178571428571432], [1.2, 1.8285714285714292], [1.2, 1.6392857142857142], [1.2, 1.4500000000000002], [1.2, 1.2607142857142861], [1.2, 1.071428571428572], [1.2, 0.8821428571428571], [1.2, 0.6928571428571431], [1.2, 0.503571428571429], [1.2, 0.31428571428571495], [1.2, 0.12500000000000044], [1.2, 0], [1.2, -0.06428571428571406], [1.2, -0.2535714285714281], [1.2, -0.4428571428571426], [1.2, -0.6321428571428567], [1.2, -0.8214285714285712], [1.2, -1.0107142857142852], [1.2, -1.1999999999999997], [1.2, -1.3892857142857138], [1.2, -1.5785714285714283], [1.2, -1.7678571428571423], [1.2, -1.9571428571428569], [1.2, -2.1464285714285714], [1.2, -2.3357142857142854], [1.2, -2.5249999999999995], [1.2, -2.714285714285714], [1.2, -2.9035714285714285], [1.2, -3.0928571428571425], [1.2, -3.2821428571428566], [1.2, -3.471428571428571], [1.2, -3.6607142857142856], [1.2, -3.8499999999999996]]);
																							}
																						}
																						translate(v = [0, -3.8, -0.1]) {
																							cylinder(h = 5.2, r = 1.2249999999999999);
																						}
																					}
																				}
																			}
																		}
																		translate(v = [0, 0, 0]) {
																			rotate(a = [0, 0, 0]) {
																				difference() {
																					union() {
																						translate(v = [-5.5, -12.0, 4.95]) {
																							cube(size = [11.0, 6.5, 2.05]);
																						}
																					}
																					union();
																				}
																			}
																		}
																		translate(v = [-5.5, -12.0, 4.95]) {
																			cube(size = [2.0500000000000003, 12.0, 2.05]);
																		}
																		translate(v = [3.4499999999999997, -12.0, 4.95]) {
																			cube(size = [2.0500000000000003, 12.0, 2.05]);
																		}
																	}
																	union();
																}
															}
														}
													}
													union();
												}
											}
										}
										translate(v = [-2.5, -196.8, 7.5]) {
											cube(size = [8.0, 196.6, 3.0]);
										}
										translate(v = [-2.5, -100.0, 10.45]) {
											cube(size = [12.0, 3.0, 6.05]);
										}
									}
									union() {
										translate(v = [-4.600000000000001, 0.1, 10.5]) {
											rotate(a = [90, 0, 0]) {
												cylinder(h = 16.2, r = 1.8);
											}
										}
										translate(v = [-4.600000000000001, -12.0, 10.5]) {
											rotate(a = [90, 0, 0]) {
												cylinder(h = 3.2, r = 3.5235);
											}
										}
										translate(v = [4.600000000000001, 0.1, 10.5]) {
											rotate(a = [90, 0, 0]) {
												cylinder(h = 16.2, r = 1.8);
											}
										}
										translate(v = [4.600000000000001, -12.0, 10.5]) {
											rotate(a = [90, 0, 0]) {
												cylinder(h = 3.2, r = 3.5235);
											}
										}
										translate(v = [-4.600000000000001, -197.1, 10.5]) {
											rotate(a = [-90, 0, 0]) {
												cylinder(h = 16.2, r = 1.8);
											}
										}
										translate(v = [-4.600000000000001, -185.0, 10.5]) {
											rotate(a = [-90, 0, 0]) {
												cylinder(h = 3.2, r = 3.5235);
											}
										}
										translate(v = [4.600000000000001, -197.1, 10.5]) {
											rotate(a = [-90, 0, 0]) {
												cylinder(h = 16.2, r = 1.8);
											}
										}
										translate(v = [4.600000000000001, -185.0, 10.5]) {
											rotate(a = [-90, 0, 0]) {
												cylinder(h = 3.2, r = 3.5235);
											}
										}
									}
								}
							}
						}
					}
					union();
				}
			}
		}
	}
	union();
}
